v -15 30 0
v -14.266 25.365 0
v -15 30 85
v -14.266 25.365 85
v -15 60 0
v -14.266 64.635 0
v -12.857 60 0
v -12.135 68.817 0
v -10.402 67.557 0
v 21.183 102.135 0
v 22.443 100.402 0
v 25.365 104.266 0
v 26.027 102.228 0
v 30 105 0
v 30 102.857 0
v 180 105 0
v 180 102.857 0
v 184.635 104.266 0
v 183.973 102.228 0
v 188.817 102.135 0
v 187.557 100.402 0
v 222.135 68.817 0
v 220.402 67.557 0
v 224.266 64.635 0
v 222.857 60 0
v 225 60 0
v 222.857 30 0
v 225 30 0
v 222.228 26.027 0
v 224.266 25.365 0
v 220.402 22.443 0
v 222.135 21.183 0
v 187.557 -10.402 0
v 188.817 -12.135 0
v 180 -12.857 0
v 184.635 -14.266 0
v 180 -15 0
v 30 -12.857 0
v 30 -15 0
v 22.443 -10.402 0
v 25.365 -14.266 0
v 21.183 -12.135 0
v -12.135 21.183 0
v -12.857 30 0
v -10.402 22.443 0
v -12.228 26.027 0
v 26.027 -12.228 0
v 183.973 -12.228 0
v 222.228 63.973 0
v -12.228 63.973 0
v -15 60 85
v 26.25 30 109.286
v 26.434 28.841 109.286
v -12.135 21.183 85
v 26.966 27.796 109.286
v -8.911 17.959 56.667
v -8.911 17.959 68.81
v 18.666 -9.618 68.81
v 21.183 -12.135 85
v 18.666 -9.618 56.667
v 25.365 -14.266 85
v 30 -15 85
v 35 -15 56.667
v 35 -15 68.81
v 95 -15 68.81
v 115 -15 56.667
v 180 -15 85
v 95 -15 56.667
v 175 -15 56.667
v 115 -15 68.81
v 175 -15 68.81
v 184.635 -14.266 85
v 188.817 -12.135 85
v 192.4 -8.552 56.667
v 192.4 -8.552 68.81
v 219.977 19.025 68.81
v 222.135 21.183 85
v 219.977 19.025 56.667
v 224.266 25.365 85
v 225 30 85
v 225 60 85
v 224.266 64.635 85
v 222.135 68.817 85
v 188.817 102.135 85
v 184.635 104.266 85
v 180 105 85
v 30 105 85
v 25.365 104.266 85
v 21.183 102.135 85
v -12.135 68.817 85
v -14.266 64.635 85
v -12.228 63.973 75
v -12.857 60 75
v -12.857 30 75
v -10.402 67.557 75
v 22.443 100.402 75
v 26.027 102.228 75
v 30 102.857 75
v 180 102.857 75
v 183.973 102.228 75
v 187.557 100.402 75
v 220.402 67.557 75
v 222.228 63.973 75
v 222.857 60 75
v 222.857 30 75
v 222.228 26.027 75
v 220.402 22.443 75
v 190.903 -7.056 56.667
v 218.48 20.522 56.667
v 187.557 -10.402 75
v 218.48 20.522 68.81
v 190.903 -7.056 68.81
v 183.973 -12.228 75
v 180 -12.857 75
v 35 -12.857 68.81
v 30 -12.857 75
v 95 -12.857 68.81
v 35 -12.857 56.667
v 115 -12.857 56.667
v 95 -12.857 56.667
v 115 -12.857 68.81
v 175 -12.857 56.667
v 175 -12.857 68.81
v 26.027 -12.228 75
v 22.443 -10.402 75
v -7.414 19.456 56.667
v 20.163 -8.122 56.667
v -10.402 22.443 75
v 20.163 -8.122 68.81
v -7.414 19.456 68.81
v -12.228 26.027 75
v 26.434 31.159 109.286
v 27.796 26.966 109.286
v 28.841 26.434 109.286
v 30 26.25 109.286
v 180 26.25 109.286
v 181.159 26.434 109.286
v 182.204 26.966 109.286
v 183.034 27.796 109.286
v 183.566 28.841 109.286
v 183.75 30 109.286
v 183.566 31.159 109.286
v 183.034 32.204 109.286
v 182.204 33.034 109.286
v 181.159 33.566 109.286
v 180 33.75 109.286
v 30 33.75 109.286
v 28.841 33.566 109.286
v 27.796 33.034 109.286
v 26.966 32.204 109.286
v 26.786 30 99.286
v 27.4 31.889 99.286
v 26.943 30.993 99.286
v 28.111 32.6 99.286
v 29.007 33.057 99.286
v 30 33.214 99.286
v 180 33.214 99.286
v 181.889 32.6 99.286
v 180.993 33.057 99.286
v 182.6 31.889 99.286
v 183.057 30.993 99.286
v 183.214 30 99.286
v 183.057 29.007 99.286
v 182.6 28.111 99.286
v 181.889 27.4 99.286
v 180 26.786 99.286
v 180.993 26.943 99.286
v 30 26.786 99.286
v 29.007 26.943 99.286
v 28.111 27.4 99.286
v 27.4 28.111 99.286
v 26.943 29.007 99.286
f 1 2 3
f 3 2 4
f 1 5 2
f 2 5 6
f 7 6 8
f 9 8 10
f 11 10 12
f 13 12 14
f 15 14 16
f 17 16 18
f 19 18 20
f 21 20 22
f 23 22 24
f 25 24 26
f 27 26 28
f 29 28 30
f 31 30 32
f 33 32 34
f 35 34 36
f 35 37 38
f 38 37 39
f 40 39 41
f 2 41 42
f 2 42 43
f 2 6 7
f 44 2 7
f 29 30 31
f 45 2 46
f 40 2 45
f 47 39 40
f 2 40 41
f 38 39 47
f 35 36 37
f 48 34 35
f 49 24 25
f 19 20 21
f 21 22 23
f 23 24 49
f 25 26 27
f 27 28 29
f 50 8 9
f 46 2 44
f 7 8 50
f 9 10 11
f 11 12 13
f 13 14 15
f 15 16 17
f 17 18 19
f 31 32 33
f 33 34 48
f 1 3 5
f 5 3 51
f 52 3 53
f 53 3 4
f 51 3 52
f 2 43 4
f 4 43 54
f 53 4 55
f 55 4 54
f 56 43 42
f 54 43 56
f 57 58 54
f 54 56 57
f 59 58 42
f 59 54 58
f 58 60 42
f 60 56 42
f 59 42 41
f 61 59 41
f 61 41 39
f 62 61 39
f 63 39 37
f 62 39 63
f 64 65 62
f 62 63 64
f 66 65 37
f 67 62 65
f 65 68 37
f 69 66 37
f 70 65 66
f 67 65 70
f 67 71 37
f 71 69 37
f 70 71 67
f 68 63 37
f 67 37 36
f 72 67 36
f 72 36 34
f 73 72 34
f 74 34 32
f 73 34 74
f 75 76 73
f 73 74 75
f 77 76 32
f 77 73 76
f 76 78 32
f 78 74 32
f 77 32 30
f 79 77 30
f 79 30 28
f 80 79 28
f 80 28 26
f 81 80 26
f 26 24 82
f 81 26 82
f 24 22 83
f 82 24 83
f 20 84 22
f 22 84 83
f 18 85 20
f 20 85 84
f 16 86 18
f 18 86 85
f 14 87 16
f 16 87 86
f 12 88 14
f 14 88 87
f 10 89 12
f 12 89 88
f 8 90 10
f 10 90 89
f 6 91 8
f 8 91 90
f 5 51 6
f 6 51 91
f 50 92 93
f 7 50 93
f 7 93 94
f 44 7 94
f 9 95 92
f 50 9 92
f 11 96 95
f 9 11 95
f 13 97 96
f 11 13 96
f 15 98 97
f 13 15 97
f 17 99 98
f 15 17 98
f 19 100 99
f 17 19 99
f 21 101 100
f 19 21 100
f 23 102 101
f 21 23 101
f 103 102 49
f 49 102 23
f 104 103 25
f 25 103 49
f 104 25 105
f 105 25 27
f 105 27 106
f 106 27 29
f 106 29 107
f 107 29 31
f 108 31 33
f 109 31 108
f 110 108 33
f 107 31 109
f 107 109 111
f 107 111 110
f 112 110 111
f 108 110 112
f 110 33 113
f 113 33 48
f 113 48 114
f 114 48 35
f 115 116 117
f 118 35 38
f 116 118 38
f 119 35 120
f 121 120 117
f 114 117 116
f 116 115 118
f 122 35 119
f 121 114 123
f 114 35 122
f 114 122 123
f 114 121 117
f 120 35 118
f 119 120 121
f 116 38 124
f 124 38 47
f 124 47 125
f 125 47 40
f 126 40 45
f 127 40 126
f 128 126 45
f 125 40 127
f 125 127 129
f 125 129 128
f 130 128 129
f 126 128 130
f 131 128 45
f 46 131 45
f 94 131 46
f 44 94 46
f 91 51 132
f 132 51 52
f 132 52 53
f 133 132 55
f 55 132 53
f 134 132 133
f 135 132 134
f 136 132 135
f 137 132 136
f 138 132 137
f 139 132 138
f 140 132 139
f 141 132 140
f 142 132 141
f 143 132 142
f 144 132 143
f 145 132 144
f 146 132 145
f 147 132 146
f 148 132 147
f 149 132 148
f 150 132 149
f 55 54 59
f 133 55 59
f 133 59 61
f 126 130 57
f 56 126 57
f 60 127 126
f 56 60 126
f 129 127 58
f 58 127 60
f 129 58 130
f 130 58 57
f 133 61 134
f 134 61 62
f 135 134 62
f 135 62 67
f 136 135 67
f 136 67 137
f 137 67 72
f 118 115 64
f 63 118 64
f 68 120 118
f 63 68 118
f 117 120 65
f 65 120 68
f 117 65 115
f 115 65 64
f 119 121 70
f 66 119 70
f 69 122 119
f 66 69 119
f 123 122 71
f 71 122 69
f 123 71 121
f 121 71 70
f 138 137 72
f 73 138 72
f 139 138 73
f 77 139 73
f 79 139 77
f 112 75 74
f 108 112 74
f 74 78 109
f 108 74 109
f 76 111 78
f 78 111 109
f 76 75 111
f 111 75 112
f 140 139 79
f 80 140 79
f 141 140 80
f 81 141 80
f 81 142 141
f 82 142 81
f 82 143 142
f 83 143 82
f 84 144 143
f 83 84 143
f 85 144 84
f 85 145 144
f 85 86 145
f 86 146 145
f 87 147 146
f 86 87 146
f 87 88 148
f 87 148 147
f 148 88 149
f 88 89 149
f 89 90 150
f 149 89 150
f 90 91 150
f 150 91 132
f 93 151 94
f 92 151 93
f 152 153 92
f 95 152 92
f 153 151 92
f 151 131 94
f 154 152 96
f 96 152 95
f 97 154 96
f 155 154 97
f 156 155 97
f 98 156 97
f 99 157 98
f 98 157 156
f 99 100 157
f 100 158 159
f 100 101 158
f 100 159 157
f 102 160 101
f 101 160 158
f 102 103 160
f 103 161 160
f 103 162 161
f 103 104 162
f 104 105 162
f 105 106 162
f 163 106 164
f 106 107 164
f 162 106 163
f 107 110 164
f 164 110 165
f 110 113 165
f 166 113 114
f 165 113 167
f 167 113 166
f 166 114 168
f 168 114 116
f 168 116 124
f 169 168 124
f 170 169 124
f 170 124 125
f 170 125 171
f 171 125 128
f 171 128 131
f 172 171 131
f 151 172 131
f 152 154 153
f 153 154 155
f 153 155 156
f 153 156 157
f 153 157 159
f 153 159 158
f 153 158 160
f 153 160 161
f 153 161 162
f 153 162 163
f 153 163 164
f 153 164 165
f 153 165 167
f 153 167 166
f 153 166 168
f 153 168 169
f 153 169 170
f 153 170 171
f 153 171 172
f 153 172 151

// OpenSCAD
module mainShape(l, h, cornerRadius)
{
    hull()
    {
        translate([1*l, 0*l, 0]) cylinder(r=cornerRadius, h=h); // Front right
        translate([6*l, 0*l, 0]) cylinder(r=cornerRadius, h=h); // Front left
        translate([7*l, 1*l, 0]) cylinder(r=cornerRadius, h=h); // Left side
        translate([7*l, 2*l, 0]) cylinder(r=cornerRadius, h=h); // Left side
        translate([6*l, 3*l, 0]) cylinder(r=cornerRadius, h=h); // Rear left
        translate([1*l, 3*l, 0]) cylinder(r=cornerRadius, h=h); // Rear right
        translate([0*l, 2*l, 0]) cylinder(r=cornerRadius, h=h); // Right side
        translate([0*l, 1*l, 0]) cylinder(r=cornerRadius, h=h); // Right side
        translate([1*l, 1*l, 0]) cylinder(r=cornerRadius/4, h=h*9/7); // Roof right
        translate([6*l, 1*l, 0]) cylinder(r=cornerRadius/4, h=h*9/7); // Roof left
    }
}

module bunker(l=30, h=85, cornerRadius=15)
{
    difference()
    {
        union()
        {
            mainShape(l, h, cornerRadius);

//            // Floor
//            translate([-50, -50, 0])
//            cube([300, 200, 2]);
        }

        // Hollow inside
        translate([0, 0, -10])
        mainShape(l, h, cornerRadius*6/7);

        // Slits in front walls
        translate([1*l + 5, -1*l, h*2/3]) cube([l*2, l, h/7]);
        translate([4*l - 5, -1*l, h*2/3]) cube([l*2, l, h/7]);

        // Slits in side walls
        rotate(315, [0,0,1]) translate([-0.8*l + 5, 0*l, h*2/3]) cube([l*1.3, l, h/7]);
        rotate(45, [0,0,1]) translate([4.5*l - 5, -5*l, h*2/3]) cube([l*1.3, l, h/7]);
    }
}

$fn = 20;
bunker();
